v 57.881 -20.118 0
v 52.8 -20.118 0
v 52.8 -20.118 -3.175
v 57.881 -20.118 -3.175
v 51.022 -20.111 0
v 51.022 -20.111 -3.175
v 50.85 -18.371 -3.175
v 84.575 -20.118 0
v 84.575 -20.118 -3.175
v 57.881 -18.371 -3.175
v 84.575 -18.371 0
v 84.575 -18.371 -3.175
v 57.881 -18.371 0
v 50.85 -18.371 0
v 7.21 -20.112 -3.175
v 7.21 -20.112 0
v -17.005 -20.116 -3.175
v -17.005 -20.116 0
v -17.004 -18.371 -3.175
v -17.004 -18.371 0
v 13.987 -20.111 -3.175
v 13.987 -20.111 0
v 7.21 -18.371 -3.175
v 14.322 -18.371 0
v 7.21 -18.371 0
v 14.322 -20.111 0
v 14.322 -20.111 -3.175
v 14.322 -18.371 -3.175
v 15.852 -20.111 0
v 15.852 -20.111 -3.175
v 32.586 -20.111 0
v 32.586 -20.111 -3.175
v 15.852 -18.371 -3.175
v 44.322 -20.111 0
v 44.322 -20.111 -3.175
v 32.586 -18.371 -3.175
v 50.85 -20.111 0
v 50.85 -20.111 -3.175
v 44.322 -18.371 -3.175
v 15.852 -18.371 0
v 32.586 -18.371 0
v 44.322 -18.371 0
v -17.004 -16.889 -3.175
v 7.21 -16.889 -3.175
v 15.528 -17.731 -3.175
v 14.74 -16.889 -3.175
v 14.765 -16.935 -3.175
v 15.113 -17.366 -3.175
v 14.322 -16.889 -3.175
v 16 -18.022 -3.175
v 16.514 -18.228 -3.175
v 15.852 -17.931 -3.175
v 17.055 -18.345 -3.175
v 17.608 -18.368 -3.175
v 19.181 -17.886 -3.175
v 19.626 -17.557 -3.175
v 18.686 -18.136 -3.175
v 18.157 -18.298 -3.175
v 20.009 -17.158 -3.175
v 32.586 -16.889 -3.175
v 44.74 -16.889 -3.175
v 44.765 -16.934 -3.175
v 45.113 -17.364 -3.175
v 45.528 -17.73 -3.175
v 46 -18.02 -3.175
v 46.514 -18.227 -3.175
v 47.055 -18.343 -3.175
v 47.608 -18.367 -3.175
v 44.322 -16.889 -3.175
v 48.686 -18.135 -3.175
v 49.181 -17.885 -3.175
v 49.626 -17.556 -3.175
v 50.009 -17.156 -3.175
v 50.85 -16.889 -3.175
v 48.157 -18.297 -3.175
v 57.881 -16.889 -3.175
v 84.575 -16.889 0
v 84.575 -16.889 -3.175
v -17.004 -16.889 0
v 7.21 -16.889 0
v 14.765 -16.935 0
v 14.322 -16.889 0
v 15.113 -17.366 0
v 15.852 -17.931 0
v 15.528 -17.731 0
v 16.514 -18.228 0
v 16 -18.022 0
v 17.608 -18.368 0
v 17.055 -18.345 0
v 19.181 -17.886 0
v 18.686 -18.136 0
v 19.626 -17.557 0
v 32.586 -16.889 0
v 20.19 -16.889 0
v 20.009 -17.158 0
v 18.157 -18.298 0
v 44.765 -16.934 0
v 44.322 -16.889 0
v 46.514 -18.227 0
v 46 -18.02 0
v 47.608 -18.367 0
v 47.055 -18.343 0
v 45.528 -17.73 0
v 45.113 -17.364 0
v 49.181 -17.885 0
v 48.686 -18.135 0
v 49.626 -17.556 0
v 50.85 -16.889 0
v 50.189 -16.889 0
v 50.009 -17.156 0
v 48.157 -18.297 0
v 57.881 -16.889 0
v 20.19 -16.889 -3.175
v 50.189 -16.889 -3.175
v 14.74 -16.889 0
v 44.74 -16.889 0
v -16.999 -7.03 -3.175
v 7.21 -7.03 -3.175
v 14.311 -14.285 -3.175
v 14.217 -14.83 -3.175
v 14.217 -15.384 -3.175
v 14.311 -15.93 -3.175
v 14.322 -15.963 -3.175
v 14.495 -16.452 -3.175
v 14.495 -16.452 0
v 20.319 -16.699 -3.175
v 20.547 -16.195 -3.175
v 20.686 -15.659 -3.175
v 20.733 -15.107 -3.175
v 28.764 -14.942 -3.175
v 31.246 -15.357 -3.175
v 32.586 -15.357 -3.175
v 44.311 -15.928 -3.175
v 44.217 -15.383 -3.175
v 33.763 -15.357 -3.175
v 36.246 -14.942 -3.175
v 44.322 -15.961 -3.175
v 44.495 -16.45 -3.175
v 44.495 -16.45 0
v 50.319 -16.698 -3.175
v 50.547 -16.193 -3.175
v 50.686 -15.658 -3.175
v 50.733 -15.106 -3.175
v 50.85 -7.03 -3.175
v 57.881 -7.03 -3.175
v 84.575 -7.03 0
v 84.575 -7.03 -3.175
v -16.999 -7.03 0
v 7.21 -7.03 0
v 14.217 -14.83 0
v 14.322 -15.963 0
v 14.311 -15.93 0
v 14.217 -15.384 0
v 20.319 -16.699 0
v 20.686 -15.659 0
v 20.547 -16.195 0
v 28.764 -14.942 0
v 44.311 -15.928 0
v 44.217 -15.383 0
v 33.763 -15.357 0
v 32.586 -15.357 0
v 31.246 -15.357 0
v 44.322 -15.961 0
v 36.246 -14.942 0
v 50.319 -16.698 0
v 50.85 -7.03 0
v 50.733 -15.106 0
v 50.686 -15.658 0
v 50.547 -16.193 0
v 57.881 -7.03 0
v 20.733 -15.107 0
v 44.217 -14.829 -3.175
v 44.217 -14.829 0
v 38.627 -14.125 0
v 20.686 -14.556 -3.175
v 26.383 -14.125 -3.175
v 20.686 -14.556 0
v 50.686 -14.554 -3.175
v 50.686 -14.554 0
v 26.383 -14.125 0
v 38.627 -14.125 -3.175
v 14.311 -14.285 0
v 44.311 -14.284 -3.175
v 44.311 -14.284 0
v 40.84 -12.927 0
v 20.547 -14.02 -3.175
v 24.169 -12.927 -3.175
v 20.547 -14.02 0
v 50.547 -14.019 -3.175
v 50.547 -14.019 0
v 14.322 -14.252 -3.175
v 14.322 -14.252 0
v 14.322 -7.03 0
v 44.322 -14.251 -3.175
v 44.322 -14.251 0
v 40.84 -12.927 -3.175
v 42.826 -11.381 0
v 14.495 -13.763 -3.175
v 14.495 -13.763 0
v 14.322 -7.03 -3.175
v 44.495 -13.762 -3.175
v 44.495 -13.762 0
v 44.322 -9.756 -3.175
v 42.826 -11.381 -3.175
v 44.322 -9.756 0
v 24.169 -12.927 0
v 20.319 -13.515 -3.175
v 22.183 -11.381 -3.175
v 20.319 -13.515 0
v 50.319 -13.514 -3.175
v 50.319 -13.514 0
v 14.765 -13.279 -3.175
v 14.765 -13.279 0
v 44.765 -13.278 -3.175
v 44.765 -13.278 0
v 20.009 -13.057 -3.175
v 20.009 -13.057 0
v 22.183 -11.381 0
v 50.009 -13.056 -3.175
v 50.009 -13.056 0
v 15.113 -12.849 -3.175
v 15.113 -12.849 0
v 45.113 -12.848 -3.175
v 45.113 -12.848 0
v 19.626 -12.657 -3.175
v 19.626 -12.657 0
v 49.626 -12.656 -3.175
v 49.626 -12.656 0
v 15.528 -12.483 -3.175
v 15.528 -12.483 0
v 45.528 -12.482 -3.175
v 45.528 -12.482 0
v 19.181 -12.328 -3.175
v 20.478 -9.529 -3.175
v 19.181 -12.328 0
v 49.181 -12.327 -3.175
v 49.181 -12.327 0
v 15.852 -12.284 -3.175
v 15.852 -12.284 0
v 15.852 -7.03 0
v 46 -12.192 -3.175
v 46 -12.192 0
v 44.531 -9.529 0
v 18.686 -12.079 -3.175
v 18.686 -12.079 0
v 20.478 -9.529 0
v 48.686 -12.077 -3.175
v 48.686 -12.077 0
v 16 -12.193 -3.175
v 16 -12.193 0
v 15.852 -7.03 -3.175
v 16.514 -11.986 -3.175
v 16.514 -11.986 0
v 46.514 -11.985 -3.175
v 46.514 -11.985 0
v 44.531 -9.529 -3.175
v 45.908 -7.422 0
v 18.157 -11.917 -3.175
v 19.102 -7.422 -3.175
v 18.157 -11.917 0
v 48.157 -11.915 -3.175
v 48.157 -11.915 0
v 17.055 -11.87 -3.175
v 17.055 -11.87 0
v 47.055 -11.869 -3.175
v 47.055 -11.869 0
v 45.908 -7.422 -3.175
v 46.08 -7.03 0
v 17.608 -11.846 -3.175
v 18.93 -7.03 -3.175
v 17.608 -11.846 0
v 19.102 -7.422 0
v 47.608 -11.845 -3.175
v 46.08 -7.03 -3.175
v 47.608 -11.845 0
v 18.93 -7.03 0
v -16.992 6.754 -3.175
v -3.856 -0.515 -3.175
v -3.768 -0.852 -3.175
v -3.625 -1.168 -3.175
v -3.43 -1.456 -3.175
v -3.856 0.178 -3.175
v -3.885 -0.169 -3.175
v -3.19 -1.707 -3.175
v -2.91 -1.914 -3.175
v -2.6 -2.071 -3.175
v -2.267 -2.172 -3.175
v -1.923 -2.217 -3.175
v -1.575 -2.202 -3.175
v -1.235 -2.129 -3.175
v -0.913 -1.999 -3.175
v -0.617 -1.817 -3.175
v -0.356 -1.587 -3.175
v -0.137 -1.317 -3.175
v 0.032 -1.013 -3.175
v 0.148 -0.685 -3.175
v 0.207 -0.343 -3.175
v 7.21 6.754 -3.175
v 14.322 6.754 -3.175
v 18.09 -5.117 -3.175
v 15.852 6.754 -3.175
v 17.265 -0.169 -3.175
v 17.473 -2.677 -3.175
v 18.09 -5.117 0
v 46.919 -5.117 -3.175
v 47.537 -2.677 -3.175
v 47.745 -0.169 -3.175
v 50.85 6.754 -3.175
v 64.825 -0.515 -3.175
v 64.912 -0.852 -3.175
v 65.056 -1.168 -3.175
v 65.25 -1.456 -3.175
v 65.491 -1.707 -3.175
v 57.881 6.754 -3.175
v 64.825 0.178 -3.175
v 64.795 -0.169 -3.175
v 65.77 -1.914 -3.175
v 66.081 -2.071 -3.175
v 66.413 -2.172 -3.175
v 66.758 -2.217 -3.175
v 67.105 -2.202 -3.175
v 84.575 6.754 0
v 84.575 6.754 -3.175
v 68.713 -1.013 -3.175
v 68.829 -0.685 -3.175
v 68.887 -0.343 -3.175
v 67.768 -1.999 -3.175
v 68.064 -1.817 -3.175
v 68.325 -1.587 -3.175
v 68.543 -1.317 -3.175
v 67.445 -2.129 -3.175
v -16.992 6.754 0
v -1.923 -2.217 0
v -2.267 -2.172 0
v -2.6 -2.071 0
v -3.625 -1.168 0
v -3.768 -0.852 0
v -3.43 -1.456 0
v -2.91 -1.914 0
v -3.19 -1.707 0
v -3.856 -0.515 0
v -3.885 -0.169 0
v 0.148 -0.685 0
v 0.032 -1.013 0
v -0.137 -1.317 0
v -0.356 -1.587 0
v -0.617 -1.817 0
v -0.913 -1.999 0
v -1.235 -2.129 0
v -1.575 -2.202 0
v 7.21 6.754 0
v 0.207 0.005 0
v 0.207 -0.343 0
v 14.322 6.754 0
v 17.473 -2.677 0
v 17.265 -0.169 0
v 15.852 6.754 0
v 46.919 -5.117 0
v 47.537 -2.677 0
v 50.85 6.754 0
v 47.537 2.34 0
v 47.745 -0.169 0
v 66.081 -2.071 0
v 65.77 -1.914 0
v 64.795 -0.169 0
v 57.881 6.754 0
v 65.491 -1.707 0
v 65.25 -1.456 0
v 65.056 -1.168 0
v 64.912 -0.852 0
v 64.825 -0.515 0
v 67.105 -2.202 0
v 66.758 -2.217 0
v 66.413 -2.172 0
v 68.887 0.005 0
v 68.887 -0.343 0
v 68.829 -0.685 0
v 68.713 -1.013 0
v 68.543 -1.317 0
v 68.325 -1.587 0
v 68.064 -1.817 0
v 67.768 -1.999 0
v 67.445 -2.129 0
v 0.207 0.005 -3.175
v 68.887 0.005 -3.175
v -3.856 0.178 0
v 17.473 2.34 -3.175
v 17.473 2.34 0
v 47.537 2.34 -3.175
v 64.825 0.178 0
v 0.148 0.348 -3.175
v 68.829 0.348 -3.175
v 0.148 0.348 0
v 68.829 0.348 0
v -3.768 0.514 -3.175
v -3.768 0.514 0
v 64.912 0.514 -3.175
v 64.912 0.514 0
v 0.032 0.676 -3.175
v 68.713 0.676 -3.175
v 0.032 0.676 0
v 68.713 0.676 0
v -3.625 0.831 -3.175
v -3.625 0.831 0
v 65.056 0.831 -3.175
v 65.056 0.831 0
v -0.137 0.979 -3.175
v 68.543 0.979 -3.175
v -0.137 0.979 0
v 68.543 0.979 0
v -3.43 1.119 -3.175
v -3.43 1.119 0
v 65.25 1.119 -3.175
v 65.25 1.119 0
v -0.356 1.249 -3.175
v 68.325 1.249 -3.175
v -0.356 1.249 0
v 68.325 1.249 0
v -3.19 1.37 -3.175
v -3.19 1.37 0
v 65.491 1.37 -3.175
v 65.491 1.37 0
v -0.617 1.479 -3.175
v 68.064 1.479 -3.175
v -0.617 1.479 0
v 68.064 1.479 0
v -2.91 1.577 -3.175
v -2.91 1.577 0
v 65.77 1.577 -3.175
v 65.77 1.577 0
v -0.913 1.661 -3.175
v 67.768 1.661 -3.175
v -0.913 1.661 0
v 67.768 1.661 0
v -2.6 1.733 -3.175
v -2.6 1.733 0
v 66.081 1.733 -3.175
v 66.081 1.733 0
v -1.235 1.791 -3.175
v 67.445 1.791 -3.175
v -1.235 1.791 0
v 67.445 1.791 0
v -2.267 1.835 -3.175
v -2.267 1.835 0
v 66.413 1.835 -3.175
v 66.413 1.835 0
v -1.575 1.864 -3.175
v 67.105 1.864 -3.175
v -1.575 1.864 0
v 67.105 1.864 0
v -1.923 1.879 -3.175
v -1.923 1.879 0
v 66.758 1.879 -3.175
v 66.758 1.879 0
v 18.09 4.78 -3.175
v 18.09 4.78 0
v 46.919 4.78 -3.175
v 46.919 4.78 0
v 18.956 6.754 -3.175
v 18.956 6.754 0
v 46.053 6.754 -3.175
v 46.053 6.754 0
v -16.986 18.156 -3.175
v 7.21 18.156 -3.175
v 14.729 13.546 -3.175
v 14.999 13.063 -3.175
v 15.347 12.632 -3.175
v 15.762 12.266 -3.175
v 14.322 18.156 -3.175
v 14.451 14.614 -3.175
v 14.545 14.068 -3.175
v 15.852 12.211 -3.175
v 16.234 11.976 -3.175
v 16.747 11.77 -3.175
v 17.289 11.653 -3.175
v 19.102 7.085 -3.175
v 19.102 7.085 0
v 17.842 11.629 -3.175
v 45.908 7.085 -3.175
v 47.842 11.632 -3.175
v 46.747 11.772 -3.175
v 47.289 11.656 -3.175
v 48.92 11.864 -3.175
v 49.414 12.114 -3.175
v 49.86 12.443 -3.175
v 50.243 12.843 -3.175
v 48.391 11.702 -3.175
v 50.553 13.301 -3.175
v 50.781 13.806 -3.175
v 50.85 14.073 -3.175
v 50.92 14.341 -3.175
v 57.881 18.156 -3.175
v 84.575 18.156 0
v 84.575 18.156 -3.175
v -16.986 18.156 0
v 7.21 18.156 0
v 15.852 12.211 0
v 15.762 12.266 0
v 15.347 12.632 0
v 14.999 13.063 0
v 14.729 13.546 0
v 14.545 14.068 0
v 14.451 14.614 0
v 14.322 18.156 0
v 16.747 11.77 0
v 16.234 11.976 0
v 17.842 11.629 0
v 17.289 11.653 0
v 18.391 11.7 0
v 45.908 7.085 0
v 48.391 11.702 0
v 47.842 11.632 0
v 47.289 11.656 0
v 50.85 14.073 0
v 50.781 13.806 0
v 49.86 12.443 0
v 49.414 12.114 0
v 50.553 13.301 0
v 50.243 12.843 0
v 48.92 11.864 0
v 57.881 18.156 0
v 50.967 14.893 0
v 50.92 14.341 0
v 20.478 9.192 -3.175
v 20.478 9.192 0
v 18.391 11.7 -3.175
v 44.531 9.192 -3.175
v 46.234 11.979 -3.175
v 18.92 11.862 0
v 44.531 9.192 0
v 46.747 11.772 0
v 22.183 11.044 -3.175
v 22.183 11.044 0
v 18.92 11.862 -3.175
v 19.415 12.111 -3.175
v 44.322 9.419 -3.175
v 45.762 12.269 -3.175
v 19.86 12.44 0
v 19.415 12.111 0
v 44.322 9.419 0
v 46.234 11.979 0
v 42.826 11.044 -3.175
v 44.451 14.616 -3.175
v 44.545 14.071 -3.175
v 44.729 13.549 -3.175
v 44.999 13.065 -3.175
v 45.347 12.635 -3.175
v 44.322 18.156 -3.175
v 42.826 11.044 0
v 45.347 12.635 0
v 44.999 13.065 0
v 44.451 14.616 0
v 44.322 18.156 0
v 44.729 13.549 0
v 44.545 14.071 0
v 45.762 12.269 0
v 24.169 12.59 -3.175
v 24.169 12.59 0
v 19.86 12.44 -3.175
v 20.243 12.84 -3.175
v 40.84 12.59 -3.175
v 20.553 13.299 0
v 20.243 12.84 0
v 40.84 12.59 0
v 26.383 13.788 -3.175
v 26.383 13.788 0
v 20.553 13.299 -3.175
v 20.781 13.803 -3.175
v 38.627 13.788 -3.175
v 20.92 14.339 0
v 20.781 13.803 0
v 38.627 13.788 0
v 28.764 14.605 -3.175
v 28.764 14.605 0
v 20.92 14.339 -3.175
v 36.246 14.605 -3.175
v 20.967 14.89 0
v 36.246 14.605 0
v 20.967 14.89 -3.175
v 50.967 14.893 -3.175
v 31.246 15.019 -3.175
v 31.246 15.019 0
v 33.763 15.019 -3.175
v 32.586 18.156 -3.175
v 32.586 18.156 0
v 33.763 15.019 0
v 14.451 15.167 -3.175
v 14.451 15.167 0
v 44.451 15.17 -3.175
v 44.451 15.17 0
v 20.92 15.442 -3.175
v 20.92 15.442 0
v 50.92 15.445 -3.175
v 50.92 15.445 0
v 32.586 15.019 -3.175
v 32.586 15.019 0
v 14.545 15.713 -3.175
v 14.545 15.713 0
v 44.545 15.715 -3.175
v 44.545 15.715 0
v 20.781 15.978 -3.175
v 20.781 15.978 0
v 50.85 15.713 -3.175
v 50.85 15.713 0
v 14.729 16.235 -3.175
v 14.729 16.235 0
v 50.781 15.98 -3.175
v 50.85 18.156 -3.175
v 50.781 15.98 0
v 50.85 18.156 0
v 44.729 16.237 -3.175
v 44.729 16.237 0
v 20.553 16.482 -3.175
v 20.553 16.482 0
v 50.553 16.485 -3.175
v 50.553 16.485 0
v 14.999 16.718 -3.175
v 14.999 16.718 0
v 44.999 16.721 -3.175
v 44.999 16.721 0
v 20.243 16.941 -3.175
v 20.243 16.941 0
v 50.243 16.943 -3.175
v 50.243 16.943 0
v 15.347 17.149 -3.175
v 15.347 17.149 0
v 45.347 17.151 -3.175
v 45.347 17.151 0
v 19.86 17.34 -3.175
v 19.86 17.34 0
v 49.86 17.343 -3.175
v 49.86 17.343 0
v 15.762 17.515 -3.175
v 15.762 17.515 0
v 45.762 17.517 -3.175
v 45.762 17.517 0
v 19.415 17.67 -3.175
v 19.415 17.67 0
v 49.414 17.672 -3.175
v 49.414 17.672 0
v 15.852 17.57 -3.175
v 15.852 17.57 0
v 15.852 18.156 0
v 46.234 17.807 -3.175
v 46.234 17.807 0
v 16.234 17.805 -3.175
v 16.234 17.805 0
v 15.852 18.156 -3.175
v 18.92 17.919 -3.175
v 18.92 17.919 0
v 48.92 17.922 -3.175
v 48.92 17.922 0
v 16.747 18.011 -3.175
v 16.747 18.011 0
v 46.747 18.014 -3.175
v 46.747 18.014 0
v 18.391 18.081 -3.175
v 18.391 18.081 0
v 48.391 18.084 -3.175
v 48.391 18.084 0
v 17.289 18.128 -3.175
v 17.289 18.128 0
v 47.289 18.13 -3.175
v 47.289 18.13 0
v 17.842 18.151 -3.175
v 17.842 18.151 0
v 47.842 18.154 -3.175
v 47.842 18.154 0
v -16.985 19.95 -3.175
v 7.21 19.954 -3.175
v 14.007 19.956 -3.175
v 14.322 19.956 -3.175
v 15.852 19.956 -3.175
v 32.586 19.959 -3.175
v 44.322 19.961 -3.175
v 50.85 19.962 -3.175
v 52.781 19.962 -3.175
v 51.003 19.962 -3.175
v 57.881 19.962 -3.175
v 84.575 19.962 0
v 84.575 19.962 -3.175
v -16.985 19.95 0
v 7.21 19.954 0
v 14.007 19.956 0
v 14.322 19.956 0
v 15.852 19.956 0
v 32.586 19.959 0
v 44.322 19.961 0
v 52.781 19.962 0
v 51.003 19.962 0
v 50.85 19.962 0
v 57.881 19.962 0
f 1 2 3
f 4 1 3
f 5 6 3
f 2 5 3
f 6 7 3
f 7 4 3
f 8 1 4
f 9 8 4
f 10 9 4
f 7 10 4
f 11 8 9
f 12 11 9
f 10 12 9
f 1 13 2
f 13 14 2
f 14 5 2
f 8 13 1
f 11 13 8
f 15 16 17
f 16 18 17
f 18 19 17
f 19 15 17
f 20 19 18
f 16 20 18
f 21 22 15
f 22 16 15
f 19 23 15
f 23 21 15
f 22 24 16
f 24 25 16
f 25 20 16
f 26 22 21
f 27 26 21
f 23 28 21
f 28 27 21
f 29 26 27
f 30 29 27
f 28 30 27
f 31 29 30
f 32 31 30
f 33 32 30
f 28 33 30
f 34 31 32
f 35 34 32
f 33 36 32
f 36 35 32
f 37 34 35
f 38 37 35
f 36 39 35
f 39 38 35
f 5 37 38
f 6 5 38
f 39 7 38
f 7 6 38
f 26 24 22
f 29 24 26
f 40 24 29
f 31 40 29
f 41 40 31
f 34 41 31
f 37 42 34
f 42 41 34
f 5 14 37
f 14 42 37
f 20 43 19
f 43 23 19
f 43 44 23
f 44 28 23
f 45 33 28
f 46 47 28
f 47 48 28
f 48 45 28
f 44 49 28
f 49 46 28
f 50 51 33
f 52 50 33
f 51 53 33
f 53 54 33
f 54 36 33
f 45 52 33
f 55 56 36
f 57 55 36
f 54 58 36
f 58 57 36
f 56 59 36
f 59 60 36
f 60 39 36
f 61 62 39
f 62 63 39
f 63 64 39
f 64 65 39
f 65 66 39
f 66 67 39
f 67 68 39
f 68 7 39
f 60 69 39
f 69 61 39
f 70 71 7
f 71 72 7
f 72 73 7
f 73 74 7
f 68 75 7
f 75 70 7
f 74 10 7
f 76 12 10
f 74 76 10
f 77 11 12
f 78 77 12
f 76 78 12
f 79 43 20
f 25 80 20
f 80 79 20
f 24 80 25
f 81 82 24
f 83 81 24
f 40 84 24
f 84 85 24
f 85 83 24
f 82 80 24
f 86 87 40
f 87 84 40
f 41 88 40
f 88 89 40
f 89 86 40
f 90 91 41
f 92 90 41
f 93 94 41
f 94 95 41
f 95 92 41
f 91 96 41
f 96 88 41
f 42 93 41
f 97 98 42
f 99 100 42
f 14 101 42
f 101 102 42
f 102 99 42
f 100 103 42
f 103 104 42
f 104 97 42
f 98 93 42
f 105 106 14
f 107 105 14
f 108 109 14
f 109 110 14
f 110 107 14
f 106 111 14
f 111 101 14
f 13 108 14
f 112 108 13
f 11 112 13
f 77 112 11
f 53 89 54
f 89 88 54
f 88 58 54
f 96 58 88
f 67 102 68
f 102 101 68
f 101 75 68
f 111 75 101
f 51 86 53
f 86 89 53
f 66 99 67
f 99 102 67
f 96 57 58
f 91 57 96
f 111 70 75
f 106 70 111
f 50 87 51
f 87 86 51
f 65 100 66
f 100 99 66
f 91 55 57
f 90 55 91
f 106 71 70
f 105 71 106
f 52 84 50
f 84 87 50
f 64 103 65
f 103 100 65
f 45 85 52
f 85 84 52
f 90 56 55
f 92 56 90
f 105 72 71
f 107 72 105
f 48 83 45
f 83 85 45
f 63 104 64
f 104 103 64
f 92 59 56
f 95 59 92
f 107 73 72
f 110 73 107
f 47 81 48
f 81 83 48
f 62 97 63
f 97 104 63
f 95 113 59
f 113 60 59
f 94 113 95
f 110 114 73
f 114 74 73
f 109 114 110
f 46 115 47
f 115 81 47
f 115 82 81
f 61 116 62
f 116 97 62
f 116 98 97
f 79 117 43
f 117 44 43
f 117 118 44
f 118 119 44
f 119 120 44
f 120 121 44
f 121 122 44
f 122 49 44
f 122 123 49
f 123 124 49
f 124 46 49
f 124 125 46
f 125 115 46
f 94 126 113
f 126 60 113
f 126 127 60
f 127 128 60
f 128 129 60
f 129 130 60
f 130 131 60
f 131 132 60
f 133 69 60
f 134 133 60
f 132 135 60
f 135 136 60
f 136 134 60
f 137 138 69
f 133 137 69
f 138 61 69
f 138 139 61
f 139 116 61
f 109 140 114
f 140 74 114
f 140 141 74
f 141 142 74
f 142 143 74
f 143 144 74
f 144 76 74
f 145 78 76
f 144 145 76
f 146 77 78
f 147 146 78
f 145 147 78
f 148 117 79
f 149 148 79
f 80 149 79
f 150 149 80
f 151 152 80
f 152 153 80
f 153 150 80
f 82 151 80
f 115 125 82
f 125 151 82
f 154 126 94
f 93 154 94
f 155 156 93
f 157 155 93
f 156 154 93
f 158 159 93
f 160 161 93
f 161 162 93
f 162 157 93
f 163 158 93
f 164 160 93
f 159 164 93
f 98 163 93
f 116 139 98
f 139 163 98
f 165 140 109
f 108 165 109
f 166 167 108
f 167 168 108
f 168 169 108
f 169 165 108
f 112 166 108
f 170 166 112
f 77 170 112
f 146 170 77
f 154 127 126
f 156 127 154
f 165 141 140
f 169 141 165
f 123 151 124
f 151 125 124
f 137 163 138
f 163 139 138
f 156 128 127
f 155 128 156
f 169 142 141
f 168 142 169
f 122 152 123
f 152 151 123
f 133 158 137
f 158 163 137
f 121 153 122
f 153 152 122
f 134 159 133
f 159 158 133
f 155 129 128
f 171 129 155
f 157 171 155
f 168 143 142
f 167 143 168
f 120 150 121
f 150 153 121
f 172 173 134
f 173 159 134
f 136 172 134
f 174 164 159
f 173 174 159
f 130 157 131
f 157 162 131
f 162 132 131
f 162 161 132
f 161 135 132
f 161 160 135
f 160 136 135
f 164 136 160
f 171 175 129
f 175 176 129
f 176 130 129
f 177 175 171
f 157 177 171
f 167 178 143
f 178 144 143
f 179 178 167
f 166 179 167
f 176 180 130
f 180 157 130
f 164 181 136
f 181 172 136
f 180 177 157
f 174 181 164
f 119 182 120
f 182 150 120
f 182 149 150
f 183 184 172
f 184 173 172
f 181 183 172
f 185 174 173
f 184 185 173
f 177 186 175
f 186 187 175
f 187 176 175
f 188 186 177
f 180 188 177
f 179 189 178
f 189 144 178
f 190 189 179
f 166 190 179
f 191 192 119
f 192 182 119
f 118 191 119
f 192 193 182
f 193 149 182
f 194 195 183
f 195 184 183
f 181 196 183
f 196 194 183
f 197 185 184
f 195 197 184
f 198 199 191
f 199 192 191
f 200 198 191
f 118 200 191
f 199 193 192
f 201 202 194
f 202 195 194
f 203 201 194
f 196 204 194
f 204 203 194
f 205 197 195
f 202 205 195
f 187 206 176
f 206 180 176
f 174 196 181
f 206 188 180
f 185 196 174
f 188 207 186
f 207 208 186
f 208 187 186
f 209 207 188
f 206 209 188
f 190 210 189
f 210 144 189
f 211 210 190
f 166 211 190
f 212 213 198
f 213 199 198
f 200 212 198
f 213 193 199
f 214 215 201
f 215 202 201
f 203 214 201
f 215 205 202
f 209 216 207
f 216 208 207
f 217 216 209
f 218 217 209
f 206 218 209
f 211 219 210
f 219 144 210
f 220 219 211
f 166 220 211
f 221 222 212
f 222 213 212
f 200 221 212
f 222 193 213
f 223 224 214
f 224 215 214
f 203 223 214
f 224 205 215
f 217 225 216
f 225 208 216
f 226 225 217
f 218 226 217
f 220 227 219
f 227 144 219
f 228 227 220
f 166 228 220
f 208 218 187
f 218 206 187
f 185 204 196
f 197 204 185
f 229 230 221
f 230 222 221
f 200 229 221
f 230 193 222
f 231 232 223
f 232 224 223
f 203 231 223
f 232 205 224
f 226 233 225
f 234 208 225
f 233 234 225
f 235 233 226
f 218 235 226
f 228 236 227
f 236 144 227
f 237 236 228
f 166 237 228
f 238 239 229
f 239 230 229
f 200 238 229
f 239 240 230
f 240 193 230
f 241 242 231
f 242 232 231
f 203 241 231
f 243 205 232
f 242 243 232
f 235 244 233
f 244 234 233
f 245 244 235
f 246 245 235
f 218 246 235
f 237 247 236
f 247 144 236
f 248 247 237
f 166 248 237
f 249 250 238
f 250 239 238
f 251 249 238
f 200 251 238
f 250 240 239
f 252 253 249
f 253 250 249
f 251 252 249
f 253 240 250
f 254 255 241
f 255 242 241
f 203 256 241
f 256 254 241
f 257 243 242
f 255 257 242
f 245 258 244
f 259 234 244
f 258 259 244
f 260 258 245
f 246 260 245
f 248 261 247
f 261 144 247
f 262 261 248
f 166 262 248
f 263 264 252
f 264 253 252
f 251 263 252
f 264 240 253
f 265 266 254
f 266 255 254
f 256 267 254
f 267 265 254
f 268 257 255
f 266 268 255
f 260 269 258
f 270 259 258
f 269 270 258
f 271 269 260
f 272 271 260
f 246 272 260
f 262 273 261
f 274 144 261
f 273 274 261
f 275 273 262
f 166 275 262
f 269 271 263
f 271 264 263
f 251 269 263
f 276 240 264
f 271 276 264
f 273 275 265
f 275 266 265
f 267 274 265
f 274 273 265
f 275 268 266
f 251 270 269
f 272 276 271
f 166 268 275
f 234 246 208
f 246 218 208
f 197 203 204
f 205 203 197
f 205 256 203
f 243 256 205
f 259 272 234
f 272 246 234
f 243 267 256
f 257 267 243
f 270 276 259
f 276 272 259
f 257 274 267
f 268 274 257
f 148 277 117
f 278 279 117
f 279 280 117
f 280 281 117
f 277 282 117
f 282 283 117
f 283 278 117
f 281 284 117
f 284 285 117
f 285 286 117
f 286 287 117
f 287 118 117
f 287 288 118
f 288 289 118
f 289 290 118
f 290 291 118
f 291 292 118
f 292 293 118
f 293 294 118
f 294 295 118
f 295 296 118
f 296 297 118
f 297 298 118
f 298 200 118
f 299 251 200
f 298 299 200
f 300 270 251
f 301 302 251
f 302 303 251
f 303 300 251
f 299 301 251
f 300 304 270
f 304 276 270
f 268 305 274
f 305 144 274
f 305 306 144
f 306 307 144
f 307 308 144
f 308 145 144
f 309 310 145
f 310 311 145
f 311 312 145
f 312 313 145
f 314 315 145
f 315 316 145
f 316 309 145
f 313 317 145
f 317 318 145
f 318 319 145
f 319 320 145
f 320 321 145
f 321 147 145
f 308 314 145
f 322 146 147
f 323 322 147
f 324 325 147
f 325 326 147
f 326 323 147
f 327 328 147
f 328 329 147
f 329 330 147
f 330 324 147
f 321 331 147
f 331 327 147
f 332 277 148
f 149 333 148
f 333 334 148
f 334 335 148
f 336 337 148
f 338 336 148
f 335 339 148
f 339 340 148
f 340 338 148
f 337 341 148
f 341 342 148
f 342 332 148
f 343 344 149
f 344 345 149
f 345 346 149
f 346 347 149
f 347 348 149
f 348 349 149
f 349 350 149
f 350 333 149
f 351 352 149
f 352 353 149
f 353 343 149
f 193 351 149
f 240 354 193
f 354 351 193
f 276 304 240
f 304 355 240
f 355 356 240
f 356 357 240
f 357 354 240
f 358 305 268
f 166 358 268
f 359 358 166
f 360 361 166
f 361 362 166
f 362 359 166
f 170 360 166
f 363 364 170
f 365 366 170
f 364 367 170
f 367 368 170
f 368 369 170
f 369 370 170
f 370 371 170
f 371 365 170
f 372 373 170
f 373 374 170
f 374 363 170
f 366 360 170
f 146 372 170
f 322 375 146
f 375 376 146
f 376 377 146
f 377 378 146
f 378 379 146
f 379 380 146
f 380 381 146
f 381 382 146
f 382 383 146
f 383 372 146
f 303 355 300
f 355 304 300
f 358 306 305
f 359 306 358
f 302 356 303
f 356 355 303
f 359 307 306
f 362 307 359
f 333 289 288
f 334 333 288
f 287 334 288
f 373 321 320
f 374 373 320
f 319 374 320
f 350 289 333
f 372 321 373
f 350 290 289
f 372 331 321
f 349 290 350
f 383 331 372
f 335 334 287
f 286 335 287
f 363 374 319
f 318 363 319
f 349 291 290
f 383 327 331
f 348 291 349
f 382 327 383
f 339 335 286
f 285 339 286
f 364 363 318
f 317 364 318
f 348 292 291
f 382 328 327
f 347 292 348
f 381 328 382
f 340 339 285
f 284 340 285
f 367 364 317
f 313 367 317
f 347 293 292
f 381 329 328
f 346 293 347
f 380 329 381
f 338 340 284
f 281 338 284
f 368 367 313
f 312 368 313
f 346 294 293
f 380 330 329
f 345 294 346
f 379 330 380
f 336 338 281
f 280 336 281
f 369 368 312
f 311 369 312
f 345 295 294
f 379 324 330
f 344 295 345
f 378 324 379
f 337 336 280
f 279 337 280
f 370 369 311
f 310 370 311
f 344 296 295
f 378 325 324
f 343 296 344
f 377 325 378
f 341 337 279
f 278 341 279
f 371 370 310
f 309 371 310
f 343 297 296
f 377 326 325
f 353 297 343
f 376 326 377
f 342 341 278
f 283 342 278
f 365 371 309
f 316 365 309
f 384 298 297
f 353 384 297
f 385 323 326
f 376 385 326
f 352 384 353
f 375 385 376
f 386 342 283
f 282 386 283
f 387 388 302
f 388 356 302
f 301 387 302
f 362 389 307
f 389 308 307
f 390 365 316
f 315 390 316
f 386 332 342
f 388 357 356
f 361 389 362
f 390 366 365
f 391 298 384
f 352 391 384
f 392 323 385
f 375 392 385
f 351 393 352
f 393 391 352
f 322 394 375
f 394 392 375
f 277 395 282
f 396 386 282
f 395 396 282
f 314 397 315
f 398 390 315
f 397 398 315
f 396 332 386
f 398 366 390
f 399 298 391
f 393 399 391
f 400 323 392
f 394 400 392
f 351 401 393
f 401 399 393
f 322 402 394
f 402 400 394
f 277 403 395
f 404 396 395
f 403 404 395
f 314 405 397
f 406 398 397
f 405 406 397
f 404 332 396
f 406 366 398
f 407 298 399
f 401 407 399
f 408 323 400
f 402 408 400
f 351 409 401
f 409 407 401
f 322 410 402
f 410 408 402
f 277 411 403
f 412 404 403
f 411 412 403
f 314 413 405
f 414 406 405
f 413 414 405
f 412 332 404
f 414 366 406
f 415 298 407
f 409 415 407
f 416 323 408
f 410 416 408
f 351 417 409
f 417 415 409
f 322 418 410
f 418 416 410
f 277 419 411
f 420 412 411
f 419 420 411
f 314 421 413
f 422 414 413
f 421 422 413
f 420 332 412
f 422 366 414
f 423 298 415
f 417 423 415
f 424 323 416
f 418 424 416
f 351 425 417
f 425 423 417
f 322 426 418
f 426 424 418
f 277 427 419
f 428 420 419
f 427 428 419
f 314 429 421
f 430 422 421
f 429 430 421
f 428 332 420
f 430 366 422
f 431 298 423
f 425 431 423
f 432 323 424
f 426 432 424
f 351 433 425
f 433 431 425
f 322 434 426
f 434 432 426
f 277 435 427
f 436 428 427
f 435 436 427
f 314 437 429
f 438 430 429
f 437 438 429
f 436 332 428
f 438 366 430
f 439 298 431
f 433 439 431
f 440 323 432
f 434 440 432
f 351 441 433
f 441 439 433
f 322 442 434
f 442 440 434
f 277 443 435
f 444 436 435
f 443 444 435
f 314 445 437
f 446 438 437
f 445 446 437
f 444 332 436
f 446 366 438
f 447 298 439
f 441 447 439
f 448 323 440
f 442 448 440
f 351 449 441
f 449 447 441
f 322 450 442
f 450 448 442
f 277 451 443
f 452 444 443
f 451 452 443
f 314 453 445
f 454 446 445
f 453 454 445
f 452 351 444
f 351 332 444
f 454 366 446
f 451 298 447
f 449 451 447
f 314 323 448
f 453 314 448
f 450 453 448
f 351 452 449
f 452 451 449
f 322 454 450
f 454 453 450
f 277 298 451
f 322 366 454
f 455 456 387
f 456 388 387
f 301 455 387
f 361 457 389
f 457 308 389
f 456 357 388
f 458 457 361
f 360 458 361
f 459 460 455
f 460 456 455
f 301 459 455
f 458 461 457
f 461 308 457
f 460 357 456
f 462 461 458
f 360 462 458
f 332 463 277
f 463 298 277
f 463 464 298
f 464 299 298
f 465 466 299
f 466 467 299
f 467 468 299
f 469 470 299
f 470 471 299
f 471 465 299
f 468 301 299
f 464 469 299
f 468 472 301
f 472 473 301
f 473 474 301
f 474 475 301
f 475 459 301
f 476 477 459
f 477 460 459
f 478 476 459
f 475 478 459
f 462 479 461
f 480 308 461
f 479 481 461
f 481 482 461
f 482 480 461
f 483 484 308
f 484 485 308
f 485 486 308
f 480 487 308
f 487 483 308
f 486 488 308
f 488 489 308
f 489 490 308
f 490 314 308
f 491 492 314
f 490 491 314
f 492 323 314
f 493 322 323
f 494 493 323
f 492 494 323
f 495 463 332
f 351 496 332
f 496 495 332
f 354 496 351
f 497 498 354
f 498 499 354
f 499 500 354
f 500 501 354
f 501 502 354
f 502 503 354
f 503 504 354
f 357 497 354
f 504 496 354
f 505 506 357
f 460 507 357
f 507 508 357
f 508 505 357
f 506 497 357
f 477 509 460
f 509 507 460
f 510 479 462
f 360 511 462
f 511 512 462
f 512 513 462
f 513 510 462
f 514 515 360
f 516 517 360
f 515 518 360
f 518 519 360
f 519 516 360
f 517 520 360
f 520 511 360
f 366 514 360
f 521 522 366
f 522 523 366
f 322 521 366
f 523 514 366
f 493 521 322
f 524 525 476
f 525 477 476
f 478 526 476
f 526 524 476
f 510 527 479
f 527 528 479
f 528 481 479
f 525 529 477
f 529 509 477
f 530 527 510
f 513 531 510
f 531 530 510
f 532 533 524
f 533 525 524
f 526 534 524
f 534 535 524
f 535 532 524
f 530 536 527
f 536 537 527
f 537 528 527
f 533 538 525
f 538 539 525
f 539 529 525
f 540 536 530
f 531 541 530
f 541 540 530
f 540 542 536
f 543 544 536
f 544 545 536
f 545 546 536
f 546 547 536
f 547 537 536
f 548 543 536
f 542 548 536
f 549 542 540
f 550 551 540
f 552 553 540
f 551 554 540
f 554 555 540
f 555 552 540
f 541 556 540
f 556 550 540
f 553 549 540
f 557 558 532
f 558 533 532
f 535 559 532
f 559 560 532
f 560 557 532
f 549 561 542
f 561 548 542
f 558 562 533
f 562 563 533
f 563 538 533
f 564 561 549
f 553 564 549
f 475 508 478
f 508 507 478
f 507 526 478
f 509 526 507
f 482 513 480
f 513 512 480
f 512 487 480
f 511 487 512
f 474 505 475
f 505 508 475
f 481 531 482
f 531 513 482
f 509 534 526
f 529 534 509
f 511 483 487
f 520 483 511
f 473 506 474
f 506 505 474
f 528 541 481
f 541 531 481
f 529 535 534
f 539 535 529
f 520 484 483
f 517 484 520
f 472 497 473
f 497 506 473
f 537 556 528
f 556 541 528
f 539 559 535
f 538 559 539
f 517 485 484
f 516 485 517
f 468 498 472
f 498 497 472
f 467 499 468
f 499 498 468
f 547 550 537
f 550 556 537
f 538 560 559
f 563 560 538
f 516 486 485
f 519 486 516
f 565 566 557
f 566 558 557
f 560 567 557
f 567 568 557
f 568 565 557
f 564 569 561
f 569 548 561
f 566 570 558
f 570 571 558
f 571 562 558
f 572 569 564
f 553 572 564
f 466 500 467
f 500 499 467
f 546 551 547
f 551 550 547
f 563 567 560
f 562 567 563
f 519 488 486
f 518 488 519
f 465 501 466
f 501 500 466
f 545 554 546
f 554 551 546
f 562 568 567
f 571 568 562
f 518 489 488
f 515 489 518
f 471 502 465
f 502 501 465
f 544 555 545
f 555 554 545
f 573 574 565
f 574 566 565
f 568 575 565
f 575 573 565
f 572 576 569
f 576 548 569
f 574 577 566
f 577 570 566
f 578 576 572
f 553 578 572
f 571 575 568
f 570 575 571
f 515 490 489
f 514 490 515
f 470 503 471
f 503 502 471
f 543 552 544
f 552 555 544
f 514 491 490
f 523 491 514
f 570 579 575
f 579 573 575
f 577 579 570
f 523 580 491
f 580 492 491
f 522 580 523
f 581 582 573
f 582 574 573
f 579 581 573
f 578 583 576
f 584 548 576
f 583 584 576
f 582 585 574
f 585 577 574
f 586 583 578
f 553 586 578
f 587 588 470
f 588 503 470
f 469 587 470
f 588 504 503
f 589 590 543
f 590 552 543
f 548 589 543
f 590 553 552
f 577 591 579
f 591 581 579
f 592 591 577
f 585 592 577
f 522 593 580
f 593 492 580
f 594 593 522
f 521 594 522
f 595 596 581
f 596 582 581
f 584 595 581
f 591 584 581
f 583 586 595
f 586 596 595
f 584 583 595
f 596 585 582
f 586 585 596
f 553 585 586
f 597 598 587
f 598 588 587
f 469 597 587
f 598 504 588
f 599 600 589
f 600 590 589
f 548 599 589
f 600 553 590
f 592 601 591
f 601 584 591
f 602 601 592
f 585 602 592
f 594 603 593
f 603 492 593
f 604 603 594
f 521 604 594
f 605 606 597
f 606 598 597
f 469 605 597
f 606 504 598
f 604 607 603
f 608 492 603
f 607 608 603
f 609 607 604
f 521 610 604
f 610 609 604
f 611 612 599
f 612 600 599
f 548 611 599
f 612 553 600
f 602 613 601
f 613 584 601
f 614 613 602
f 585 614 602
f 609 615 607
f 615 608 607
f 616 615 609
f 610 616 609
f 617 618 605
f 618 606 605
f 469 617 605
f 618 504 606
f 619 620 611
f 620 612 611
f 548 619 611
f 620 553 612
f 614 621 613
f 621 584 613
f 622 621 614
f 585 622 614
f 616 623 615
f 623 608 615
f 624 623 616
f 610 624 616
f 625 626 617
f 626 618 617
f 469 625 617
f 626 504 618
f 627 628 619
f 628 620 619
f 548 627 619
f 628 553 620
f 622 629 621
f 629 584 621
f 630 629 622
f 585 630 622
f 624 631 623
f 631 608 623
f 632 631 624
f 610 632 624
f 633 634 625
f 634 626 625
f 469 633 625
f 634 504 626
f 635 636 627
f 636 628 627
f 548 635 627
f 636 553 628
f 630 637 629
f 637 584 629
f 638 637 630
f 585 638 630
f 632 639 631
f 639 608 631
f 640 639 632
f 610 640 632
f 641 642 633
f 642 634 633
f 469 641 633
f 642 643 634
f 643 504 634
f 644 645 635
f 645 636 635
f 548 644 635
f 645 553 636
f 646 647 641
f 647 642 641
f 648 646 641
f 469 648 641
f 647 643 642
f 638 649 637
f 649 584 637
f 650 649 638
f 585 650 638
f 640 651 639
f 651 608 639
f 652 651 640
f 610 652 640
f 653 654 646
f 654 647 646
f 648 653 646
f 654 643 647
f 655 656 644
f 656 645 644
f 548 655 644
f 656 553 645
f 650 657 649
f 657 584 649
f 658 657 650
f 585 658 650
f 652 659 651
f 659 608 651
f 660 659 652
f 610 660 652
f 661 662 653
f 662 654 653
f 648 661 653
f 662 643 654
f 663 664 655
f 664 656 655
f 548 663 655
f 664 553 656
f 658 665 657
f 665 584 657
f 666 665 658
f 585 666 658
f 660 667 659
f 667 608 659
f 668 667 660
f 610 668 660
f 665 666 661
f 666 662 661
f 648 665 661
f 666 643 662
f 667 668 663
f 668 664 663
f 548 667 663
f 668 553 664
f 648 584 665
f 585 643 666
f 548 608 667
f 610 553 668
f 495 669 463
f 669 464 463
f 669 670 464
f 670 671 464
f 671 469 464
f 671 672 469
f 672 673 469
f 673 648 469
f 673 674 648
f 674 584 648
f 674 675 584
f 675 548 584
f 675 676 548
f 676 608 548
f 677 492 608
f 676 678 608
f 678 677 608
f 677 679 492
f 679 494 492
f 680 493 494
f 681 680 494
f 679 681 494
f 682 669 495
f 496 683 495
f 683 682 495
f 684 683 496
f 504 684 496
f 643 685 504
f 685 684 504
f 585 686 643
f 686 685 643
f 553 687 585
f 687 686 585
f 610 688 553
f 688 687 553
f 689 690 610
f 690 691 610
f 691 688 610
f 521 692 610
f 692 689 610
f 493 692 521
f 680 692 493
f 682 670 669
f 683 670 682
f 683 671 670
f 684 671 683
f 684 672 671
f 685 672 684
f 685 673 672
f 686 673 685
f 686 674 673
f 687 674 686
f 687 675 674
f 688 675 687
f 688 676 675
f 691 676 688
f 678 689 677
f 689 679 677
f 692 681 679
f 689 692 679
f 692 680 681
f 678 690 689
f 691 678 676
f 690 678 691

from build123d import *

# Parameters (mm, degrees)
MODEL_R             = 3.2639
MODEL_R_2           = 15.24
BOSS_EXTRUDE1_DEPTH = 3.175
SKETCH1_R           = 2.049665702
CUT_EXTRUDE1_DEPTH  = 4.175


with BuildPart() as part:
    # Model → Boss-Extrude1 (new body)
    with BuildSketch(Plane.XY):
        Polygon((52.780663663, 19.962036807), (84.57472724, 19.962036807), (84.57472724, -20.117524571), (52.800441441, -20.117524571), (51.022441441, -20.110851742), (13.987013039, -20.110851742), (-17.005125185, -20.115733226), (-16.985347623, 19.94996289), (14.006790818, 19.955743846), (51.002663663, 19.962109065), align=None)
        with Locations((17.703224546, 14.890349751)):
            Circle(MODEL_R, mode=Mode.SUBTRACT)
        with Locations((47.70316443, 14.892992778)):
            Circle(MODEL_R, mode=Mode.SUBTRACT)
        with Locations((17.469307033, -15.107191493)):
            Circle(MODEL_R, mode=Mode.SUBTRACT)
        with Locations((47.46924701, -15.106035251)):
            Circle(MODEL_R, mode=Mode.SUBTRACT)
        with Locations((32.50472724, -0.168751446)):
            Circle(MODEL_R_2, mode=Mode.SUBTRACT)
    extrude(amount=-BOSS_EXTRUDE1_DEPTH)

    # Sketch1 → Cut-Extrude1 (cut, through all)
    with BuildSketch(Plane(origin=(0, 0, -3.175), x_dir=(-1, 0, 0), z_dir=(0, 0, -1))):
        with Locations((1.835627279, -0.168751446)):
            Circle(SKETCH1_R)
        with Locations((-66.84508176, -0.168751446)):
            Circle(SKETCH1_R)
    extrude(amount=-CUT_EXTRUDE1_DEPTH, mode=Mode.SUBTRACT)


solid = part.part
